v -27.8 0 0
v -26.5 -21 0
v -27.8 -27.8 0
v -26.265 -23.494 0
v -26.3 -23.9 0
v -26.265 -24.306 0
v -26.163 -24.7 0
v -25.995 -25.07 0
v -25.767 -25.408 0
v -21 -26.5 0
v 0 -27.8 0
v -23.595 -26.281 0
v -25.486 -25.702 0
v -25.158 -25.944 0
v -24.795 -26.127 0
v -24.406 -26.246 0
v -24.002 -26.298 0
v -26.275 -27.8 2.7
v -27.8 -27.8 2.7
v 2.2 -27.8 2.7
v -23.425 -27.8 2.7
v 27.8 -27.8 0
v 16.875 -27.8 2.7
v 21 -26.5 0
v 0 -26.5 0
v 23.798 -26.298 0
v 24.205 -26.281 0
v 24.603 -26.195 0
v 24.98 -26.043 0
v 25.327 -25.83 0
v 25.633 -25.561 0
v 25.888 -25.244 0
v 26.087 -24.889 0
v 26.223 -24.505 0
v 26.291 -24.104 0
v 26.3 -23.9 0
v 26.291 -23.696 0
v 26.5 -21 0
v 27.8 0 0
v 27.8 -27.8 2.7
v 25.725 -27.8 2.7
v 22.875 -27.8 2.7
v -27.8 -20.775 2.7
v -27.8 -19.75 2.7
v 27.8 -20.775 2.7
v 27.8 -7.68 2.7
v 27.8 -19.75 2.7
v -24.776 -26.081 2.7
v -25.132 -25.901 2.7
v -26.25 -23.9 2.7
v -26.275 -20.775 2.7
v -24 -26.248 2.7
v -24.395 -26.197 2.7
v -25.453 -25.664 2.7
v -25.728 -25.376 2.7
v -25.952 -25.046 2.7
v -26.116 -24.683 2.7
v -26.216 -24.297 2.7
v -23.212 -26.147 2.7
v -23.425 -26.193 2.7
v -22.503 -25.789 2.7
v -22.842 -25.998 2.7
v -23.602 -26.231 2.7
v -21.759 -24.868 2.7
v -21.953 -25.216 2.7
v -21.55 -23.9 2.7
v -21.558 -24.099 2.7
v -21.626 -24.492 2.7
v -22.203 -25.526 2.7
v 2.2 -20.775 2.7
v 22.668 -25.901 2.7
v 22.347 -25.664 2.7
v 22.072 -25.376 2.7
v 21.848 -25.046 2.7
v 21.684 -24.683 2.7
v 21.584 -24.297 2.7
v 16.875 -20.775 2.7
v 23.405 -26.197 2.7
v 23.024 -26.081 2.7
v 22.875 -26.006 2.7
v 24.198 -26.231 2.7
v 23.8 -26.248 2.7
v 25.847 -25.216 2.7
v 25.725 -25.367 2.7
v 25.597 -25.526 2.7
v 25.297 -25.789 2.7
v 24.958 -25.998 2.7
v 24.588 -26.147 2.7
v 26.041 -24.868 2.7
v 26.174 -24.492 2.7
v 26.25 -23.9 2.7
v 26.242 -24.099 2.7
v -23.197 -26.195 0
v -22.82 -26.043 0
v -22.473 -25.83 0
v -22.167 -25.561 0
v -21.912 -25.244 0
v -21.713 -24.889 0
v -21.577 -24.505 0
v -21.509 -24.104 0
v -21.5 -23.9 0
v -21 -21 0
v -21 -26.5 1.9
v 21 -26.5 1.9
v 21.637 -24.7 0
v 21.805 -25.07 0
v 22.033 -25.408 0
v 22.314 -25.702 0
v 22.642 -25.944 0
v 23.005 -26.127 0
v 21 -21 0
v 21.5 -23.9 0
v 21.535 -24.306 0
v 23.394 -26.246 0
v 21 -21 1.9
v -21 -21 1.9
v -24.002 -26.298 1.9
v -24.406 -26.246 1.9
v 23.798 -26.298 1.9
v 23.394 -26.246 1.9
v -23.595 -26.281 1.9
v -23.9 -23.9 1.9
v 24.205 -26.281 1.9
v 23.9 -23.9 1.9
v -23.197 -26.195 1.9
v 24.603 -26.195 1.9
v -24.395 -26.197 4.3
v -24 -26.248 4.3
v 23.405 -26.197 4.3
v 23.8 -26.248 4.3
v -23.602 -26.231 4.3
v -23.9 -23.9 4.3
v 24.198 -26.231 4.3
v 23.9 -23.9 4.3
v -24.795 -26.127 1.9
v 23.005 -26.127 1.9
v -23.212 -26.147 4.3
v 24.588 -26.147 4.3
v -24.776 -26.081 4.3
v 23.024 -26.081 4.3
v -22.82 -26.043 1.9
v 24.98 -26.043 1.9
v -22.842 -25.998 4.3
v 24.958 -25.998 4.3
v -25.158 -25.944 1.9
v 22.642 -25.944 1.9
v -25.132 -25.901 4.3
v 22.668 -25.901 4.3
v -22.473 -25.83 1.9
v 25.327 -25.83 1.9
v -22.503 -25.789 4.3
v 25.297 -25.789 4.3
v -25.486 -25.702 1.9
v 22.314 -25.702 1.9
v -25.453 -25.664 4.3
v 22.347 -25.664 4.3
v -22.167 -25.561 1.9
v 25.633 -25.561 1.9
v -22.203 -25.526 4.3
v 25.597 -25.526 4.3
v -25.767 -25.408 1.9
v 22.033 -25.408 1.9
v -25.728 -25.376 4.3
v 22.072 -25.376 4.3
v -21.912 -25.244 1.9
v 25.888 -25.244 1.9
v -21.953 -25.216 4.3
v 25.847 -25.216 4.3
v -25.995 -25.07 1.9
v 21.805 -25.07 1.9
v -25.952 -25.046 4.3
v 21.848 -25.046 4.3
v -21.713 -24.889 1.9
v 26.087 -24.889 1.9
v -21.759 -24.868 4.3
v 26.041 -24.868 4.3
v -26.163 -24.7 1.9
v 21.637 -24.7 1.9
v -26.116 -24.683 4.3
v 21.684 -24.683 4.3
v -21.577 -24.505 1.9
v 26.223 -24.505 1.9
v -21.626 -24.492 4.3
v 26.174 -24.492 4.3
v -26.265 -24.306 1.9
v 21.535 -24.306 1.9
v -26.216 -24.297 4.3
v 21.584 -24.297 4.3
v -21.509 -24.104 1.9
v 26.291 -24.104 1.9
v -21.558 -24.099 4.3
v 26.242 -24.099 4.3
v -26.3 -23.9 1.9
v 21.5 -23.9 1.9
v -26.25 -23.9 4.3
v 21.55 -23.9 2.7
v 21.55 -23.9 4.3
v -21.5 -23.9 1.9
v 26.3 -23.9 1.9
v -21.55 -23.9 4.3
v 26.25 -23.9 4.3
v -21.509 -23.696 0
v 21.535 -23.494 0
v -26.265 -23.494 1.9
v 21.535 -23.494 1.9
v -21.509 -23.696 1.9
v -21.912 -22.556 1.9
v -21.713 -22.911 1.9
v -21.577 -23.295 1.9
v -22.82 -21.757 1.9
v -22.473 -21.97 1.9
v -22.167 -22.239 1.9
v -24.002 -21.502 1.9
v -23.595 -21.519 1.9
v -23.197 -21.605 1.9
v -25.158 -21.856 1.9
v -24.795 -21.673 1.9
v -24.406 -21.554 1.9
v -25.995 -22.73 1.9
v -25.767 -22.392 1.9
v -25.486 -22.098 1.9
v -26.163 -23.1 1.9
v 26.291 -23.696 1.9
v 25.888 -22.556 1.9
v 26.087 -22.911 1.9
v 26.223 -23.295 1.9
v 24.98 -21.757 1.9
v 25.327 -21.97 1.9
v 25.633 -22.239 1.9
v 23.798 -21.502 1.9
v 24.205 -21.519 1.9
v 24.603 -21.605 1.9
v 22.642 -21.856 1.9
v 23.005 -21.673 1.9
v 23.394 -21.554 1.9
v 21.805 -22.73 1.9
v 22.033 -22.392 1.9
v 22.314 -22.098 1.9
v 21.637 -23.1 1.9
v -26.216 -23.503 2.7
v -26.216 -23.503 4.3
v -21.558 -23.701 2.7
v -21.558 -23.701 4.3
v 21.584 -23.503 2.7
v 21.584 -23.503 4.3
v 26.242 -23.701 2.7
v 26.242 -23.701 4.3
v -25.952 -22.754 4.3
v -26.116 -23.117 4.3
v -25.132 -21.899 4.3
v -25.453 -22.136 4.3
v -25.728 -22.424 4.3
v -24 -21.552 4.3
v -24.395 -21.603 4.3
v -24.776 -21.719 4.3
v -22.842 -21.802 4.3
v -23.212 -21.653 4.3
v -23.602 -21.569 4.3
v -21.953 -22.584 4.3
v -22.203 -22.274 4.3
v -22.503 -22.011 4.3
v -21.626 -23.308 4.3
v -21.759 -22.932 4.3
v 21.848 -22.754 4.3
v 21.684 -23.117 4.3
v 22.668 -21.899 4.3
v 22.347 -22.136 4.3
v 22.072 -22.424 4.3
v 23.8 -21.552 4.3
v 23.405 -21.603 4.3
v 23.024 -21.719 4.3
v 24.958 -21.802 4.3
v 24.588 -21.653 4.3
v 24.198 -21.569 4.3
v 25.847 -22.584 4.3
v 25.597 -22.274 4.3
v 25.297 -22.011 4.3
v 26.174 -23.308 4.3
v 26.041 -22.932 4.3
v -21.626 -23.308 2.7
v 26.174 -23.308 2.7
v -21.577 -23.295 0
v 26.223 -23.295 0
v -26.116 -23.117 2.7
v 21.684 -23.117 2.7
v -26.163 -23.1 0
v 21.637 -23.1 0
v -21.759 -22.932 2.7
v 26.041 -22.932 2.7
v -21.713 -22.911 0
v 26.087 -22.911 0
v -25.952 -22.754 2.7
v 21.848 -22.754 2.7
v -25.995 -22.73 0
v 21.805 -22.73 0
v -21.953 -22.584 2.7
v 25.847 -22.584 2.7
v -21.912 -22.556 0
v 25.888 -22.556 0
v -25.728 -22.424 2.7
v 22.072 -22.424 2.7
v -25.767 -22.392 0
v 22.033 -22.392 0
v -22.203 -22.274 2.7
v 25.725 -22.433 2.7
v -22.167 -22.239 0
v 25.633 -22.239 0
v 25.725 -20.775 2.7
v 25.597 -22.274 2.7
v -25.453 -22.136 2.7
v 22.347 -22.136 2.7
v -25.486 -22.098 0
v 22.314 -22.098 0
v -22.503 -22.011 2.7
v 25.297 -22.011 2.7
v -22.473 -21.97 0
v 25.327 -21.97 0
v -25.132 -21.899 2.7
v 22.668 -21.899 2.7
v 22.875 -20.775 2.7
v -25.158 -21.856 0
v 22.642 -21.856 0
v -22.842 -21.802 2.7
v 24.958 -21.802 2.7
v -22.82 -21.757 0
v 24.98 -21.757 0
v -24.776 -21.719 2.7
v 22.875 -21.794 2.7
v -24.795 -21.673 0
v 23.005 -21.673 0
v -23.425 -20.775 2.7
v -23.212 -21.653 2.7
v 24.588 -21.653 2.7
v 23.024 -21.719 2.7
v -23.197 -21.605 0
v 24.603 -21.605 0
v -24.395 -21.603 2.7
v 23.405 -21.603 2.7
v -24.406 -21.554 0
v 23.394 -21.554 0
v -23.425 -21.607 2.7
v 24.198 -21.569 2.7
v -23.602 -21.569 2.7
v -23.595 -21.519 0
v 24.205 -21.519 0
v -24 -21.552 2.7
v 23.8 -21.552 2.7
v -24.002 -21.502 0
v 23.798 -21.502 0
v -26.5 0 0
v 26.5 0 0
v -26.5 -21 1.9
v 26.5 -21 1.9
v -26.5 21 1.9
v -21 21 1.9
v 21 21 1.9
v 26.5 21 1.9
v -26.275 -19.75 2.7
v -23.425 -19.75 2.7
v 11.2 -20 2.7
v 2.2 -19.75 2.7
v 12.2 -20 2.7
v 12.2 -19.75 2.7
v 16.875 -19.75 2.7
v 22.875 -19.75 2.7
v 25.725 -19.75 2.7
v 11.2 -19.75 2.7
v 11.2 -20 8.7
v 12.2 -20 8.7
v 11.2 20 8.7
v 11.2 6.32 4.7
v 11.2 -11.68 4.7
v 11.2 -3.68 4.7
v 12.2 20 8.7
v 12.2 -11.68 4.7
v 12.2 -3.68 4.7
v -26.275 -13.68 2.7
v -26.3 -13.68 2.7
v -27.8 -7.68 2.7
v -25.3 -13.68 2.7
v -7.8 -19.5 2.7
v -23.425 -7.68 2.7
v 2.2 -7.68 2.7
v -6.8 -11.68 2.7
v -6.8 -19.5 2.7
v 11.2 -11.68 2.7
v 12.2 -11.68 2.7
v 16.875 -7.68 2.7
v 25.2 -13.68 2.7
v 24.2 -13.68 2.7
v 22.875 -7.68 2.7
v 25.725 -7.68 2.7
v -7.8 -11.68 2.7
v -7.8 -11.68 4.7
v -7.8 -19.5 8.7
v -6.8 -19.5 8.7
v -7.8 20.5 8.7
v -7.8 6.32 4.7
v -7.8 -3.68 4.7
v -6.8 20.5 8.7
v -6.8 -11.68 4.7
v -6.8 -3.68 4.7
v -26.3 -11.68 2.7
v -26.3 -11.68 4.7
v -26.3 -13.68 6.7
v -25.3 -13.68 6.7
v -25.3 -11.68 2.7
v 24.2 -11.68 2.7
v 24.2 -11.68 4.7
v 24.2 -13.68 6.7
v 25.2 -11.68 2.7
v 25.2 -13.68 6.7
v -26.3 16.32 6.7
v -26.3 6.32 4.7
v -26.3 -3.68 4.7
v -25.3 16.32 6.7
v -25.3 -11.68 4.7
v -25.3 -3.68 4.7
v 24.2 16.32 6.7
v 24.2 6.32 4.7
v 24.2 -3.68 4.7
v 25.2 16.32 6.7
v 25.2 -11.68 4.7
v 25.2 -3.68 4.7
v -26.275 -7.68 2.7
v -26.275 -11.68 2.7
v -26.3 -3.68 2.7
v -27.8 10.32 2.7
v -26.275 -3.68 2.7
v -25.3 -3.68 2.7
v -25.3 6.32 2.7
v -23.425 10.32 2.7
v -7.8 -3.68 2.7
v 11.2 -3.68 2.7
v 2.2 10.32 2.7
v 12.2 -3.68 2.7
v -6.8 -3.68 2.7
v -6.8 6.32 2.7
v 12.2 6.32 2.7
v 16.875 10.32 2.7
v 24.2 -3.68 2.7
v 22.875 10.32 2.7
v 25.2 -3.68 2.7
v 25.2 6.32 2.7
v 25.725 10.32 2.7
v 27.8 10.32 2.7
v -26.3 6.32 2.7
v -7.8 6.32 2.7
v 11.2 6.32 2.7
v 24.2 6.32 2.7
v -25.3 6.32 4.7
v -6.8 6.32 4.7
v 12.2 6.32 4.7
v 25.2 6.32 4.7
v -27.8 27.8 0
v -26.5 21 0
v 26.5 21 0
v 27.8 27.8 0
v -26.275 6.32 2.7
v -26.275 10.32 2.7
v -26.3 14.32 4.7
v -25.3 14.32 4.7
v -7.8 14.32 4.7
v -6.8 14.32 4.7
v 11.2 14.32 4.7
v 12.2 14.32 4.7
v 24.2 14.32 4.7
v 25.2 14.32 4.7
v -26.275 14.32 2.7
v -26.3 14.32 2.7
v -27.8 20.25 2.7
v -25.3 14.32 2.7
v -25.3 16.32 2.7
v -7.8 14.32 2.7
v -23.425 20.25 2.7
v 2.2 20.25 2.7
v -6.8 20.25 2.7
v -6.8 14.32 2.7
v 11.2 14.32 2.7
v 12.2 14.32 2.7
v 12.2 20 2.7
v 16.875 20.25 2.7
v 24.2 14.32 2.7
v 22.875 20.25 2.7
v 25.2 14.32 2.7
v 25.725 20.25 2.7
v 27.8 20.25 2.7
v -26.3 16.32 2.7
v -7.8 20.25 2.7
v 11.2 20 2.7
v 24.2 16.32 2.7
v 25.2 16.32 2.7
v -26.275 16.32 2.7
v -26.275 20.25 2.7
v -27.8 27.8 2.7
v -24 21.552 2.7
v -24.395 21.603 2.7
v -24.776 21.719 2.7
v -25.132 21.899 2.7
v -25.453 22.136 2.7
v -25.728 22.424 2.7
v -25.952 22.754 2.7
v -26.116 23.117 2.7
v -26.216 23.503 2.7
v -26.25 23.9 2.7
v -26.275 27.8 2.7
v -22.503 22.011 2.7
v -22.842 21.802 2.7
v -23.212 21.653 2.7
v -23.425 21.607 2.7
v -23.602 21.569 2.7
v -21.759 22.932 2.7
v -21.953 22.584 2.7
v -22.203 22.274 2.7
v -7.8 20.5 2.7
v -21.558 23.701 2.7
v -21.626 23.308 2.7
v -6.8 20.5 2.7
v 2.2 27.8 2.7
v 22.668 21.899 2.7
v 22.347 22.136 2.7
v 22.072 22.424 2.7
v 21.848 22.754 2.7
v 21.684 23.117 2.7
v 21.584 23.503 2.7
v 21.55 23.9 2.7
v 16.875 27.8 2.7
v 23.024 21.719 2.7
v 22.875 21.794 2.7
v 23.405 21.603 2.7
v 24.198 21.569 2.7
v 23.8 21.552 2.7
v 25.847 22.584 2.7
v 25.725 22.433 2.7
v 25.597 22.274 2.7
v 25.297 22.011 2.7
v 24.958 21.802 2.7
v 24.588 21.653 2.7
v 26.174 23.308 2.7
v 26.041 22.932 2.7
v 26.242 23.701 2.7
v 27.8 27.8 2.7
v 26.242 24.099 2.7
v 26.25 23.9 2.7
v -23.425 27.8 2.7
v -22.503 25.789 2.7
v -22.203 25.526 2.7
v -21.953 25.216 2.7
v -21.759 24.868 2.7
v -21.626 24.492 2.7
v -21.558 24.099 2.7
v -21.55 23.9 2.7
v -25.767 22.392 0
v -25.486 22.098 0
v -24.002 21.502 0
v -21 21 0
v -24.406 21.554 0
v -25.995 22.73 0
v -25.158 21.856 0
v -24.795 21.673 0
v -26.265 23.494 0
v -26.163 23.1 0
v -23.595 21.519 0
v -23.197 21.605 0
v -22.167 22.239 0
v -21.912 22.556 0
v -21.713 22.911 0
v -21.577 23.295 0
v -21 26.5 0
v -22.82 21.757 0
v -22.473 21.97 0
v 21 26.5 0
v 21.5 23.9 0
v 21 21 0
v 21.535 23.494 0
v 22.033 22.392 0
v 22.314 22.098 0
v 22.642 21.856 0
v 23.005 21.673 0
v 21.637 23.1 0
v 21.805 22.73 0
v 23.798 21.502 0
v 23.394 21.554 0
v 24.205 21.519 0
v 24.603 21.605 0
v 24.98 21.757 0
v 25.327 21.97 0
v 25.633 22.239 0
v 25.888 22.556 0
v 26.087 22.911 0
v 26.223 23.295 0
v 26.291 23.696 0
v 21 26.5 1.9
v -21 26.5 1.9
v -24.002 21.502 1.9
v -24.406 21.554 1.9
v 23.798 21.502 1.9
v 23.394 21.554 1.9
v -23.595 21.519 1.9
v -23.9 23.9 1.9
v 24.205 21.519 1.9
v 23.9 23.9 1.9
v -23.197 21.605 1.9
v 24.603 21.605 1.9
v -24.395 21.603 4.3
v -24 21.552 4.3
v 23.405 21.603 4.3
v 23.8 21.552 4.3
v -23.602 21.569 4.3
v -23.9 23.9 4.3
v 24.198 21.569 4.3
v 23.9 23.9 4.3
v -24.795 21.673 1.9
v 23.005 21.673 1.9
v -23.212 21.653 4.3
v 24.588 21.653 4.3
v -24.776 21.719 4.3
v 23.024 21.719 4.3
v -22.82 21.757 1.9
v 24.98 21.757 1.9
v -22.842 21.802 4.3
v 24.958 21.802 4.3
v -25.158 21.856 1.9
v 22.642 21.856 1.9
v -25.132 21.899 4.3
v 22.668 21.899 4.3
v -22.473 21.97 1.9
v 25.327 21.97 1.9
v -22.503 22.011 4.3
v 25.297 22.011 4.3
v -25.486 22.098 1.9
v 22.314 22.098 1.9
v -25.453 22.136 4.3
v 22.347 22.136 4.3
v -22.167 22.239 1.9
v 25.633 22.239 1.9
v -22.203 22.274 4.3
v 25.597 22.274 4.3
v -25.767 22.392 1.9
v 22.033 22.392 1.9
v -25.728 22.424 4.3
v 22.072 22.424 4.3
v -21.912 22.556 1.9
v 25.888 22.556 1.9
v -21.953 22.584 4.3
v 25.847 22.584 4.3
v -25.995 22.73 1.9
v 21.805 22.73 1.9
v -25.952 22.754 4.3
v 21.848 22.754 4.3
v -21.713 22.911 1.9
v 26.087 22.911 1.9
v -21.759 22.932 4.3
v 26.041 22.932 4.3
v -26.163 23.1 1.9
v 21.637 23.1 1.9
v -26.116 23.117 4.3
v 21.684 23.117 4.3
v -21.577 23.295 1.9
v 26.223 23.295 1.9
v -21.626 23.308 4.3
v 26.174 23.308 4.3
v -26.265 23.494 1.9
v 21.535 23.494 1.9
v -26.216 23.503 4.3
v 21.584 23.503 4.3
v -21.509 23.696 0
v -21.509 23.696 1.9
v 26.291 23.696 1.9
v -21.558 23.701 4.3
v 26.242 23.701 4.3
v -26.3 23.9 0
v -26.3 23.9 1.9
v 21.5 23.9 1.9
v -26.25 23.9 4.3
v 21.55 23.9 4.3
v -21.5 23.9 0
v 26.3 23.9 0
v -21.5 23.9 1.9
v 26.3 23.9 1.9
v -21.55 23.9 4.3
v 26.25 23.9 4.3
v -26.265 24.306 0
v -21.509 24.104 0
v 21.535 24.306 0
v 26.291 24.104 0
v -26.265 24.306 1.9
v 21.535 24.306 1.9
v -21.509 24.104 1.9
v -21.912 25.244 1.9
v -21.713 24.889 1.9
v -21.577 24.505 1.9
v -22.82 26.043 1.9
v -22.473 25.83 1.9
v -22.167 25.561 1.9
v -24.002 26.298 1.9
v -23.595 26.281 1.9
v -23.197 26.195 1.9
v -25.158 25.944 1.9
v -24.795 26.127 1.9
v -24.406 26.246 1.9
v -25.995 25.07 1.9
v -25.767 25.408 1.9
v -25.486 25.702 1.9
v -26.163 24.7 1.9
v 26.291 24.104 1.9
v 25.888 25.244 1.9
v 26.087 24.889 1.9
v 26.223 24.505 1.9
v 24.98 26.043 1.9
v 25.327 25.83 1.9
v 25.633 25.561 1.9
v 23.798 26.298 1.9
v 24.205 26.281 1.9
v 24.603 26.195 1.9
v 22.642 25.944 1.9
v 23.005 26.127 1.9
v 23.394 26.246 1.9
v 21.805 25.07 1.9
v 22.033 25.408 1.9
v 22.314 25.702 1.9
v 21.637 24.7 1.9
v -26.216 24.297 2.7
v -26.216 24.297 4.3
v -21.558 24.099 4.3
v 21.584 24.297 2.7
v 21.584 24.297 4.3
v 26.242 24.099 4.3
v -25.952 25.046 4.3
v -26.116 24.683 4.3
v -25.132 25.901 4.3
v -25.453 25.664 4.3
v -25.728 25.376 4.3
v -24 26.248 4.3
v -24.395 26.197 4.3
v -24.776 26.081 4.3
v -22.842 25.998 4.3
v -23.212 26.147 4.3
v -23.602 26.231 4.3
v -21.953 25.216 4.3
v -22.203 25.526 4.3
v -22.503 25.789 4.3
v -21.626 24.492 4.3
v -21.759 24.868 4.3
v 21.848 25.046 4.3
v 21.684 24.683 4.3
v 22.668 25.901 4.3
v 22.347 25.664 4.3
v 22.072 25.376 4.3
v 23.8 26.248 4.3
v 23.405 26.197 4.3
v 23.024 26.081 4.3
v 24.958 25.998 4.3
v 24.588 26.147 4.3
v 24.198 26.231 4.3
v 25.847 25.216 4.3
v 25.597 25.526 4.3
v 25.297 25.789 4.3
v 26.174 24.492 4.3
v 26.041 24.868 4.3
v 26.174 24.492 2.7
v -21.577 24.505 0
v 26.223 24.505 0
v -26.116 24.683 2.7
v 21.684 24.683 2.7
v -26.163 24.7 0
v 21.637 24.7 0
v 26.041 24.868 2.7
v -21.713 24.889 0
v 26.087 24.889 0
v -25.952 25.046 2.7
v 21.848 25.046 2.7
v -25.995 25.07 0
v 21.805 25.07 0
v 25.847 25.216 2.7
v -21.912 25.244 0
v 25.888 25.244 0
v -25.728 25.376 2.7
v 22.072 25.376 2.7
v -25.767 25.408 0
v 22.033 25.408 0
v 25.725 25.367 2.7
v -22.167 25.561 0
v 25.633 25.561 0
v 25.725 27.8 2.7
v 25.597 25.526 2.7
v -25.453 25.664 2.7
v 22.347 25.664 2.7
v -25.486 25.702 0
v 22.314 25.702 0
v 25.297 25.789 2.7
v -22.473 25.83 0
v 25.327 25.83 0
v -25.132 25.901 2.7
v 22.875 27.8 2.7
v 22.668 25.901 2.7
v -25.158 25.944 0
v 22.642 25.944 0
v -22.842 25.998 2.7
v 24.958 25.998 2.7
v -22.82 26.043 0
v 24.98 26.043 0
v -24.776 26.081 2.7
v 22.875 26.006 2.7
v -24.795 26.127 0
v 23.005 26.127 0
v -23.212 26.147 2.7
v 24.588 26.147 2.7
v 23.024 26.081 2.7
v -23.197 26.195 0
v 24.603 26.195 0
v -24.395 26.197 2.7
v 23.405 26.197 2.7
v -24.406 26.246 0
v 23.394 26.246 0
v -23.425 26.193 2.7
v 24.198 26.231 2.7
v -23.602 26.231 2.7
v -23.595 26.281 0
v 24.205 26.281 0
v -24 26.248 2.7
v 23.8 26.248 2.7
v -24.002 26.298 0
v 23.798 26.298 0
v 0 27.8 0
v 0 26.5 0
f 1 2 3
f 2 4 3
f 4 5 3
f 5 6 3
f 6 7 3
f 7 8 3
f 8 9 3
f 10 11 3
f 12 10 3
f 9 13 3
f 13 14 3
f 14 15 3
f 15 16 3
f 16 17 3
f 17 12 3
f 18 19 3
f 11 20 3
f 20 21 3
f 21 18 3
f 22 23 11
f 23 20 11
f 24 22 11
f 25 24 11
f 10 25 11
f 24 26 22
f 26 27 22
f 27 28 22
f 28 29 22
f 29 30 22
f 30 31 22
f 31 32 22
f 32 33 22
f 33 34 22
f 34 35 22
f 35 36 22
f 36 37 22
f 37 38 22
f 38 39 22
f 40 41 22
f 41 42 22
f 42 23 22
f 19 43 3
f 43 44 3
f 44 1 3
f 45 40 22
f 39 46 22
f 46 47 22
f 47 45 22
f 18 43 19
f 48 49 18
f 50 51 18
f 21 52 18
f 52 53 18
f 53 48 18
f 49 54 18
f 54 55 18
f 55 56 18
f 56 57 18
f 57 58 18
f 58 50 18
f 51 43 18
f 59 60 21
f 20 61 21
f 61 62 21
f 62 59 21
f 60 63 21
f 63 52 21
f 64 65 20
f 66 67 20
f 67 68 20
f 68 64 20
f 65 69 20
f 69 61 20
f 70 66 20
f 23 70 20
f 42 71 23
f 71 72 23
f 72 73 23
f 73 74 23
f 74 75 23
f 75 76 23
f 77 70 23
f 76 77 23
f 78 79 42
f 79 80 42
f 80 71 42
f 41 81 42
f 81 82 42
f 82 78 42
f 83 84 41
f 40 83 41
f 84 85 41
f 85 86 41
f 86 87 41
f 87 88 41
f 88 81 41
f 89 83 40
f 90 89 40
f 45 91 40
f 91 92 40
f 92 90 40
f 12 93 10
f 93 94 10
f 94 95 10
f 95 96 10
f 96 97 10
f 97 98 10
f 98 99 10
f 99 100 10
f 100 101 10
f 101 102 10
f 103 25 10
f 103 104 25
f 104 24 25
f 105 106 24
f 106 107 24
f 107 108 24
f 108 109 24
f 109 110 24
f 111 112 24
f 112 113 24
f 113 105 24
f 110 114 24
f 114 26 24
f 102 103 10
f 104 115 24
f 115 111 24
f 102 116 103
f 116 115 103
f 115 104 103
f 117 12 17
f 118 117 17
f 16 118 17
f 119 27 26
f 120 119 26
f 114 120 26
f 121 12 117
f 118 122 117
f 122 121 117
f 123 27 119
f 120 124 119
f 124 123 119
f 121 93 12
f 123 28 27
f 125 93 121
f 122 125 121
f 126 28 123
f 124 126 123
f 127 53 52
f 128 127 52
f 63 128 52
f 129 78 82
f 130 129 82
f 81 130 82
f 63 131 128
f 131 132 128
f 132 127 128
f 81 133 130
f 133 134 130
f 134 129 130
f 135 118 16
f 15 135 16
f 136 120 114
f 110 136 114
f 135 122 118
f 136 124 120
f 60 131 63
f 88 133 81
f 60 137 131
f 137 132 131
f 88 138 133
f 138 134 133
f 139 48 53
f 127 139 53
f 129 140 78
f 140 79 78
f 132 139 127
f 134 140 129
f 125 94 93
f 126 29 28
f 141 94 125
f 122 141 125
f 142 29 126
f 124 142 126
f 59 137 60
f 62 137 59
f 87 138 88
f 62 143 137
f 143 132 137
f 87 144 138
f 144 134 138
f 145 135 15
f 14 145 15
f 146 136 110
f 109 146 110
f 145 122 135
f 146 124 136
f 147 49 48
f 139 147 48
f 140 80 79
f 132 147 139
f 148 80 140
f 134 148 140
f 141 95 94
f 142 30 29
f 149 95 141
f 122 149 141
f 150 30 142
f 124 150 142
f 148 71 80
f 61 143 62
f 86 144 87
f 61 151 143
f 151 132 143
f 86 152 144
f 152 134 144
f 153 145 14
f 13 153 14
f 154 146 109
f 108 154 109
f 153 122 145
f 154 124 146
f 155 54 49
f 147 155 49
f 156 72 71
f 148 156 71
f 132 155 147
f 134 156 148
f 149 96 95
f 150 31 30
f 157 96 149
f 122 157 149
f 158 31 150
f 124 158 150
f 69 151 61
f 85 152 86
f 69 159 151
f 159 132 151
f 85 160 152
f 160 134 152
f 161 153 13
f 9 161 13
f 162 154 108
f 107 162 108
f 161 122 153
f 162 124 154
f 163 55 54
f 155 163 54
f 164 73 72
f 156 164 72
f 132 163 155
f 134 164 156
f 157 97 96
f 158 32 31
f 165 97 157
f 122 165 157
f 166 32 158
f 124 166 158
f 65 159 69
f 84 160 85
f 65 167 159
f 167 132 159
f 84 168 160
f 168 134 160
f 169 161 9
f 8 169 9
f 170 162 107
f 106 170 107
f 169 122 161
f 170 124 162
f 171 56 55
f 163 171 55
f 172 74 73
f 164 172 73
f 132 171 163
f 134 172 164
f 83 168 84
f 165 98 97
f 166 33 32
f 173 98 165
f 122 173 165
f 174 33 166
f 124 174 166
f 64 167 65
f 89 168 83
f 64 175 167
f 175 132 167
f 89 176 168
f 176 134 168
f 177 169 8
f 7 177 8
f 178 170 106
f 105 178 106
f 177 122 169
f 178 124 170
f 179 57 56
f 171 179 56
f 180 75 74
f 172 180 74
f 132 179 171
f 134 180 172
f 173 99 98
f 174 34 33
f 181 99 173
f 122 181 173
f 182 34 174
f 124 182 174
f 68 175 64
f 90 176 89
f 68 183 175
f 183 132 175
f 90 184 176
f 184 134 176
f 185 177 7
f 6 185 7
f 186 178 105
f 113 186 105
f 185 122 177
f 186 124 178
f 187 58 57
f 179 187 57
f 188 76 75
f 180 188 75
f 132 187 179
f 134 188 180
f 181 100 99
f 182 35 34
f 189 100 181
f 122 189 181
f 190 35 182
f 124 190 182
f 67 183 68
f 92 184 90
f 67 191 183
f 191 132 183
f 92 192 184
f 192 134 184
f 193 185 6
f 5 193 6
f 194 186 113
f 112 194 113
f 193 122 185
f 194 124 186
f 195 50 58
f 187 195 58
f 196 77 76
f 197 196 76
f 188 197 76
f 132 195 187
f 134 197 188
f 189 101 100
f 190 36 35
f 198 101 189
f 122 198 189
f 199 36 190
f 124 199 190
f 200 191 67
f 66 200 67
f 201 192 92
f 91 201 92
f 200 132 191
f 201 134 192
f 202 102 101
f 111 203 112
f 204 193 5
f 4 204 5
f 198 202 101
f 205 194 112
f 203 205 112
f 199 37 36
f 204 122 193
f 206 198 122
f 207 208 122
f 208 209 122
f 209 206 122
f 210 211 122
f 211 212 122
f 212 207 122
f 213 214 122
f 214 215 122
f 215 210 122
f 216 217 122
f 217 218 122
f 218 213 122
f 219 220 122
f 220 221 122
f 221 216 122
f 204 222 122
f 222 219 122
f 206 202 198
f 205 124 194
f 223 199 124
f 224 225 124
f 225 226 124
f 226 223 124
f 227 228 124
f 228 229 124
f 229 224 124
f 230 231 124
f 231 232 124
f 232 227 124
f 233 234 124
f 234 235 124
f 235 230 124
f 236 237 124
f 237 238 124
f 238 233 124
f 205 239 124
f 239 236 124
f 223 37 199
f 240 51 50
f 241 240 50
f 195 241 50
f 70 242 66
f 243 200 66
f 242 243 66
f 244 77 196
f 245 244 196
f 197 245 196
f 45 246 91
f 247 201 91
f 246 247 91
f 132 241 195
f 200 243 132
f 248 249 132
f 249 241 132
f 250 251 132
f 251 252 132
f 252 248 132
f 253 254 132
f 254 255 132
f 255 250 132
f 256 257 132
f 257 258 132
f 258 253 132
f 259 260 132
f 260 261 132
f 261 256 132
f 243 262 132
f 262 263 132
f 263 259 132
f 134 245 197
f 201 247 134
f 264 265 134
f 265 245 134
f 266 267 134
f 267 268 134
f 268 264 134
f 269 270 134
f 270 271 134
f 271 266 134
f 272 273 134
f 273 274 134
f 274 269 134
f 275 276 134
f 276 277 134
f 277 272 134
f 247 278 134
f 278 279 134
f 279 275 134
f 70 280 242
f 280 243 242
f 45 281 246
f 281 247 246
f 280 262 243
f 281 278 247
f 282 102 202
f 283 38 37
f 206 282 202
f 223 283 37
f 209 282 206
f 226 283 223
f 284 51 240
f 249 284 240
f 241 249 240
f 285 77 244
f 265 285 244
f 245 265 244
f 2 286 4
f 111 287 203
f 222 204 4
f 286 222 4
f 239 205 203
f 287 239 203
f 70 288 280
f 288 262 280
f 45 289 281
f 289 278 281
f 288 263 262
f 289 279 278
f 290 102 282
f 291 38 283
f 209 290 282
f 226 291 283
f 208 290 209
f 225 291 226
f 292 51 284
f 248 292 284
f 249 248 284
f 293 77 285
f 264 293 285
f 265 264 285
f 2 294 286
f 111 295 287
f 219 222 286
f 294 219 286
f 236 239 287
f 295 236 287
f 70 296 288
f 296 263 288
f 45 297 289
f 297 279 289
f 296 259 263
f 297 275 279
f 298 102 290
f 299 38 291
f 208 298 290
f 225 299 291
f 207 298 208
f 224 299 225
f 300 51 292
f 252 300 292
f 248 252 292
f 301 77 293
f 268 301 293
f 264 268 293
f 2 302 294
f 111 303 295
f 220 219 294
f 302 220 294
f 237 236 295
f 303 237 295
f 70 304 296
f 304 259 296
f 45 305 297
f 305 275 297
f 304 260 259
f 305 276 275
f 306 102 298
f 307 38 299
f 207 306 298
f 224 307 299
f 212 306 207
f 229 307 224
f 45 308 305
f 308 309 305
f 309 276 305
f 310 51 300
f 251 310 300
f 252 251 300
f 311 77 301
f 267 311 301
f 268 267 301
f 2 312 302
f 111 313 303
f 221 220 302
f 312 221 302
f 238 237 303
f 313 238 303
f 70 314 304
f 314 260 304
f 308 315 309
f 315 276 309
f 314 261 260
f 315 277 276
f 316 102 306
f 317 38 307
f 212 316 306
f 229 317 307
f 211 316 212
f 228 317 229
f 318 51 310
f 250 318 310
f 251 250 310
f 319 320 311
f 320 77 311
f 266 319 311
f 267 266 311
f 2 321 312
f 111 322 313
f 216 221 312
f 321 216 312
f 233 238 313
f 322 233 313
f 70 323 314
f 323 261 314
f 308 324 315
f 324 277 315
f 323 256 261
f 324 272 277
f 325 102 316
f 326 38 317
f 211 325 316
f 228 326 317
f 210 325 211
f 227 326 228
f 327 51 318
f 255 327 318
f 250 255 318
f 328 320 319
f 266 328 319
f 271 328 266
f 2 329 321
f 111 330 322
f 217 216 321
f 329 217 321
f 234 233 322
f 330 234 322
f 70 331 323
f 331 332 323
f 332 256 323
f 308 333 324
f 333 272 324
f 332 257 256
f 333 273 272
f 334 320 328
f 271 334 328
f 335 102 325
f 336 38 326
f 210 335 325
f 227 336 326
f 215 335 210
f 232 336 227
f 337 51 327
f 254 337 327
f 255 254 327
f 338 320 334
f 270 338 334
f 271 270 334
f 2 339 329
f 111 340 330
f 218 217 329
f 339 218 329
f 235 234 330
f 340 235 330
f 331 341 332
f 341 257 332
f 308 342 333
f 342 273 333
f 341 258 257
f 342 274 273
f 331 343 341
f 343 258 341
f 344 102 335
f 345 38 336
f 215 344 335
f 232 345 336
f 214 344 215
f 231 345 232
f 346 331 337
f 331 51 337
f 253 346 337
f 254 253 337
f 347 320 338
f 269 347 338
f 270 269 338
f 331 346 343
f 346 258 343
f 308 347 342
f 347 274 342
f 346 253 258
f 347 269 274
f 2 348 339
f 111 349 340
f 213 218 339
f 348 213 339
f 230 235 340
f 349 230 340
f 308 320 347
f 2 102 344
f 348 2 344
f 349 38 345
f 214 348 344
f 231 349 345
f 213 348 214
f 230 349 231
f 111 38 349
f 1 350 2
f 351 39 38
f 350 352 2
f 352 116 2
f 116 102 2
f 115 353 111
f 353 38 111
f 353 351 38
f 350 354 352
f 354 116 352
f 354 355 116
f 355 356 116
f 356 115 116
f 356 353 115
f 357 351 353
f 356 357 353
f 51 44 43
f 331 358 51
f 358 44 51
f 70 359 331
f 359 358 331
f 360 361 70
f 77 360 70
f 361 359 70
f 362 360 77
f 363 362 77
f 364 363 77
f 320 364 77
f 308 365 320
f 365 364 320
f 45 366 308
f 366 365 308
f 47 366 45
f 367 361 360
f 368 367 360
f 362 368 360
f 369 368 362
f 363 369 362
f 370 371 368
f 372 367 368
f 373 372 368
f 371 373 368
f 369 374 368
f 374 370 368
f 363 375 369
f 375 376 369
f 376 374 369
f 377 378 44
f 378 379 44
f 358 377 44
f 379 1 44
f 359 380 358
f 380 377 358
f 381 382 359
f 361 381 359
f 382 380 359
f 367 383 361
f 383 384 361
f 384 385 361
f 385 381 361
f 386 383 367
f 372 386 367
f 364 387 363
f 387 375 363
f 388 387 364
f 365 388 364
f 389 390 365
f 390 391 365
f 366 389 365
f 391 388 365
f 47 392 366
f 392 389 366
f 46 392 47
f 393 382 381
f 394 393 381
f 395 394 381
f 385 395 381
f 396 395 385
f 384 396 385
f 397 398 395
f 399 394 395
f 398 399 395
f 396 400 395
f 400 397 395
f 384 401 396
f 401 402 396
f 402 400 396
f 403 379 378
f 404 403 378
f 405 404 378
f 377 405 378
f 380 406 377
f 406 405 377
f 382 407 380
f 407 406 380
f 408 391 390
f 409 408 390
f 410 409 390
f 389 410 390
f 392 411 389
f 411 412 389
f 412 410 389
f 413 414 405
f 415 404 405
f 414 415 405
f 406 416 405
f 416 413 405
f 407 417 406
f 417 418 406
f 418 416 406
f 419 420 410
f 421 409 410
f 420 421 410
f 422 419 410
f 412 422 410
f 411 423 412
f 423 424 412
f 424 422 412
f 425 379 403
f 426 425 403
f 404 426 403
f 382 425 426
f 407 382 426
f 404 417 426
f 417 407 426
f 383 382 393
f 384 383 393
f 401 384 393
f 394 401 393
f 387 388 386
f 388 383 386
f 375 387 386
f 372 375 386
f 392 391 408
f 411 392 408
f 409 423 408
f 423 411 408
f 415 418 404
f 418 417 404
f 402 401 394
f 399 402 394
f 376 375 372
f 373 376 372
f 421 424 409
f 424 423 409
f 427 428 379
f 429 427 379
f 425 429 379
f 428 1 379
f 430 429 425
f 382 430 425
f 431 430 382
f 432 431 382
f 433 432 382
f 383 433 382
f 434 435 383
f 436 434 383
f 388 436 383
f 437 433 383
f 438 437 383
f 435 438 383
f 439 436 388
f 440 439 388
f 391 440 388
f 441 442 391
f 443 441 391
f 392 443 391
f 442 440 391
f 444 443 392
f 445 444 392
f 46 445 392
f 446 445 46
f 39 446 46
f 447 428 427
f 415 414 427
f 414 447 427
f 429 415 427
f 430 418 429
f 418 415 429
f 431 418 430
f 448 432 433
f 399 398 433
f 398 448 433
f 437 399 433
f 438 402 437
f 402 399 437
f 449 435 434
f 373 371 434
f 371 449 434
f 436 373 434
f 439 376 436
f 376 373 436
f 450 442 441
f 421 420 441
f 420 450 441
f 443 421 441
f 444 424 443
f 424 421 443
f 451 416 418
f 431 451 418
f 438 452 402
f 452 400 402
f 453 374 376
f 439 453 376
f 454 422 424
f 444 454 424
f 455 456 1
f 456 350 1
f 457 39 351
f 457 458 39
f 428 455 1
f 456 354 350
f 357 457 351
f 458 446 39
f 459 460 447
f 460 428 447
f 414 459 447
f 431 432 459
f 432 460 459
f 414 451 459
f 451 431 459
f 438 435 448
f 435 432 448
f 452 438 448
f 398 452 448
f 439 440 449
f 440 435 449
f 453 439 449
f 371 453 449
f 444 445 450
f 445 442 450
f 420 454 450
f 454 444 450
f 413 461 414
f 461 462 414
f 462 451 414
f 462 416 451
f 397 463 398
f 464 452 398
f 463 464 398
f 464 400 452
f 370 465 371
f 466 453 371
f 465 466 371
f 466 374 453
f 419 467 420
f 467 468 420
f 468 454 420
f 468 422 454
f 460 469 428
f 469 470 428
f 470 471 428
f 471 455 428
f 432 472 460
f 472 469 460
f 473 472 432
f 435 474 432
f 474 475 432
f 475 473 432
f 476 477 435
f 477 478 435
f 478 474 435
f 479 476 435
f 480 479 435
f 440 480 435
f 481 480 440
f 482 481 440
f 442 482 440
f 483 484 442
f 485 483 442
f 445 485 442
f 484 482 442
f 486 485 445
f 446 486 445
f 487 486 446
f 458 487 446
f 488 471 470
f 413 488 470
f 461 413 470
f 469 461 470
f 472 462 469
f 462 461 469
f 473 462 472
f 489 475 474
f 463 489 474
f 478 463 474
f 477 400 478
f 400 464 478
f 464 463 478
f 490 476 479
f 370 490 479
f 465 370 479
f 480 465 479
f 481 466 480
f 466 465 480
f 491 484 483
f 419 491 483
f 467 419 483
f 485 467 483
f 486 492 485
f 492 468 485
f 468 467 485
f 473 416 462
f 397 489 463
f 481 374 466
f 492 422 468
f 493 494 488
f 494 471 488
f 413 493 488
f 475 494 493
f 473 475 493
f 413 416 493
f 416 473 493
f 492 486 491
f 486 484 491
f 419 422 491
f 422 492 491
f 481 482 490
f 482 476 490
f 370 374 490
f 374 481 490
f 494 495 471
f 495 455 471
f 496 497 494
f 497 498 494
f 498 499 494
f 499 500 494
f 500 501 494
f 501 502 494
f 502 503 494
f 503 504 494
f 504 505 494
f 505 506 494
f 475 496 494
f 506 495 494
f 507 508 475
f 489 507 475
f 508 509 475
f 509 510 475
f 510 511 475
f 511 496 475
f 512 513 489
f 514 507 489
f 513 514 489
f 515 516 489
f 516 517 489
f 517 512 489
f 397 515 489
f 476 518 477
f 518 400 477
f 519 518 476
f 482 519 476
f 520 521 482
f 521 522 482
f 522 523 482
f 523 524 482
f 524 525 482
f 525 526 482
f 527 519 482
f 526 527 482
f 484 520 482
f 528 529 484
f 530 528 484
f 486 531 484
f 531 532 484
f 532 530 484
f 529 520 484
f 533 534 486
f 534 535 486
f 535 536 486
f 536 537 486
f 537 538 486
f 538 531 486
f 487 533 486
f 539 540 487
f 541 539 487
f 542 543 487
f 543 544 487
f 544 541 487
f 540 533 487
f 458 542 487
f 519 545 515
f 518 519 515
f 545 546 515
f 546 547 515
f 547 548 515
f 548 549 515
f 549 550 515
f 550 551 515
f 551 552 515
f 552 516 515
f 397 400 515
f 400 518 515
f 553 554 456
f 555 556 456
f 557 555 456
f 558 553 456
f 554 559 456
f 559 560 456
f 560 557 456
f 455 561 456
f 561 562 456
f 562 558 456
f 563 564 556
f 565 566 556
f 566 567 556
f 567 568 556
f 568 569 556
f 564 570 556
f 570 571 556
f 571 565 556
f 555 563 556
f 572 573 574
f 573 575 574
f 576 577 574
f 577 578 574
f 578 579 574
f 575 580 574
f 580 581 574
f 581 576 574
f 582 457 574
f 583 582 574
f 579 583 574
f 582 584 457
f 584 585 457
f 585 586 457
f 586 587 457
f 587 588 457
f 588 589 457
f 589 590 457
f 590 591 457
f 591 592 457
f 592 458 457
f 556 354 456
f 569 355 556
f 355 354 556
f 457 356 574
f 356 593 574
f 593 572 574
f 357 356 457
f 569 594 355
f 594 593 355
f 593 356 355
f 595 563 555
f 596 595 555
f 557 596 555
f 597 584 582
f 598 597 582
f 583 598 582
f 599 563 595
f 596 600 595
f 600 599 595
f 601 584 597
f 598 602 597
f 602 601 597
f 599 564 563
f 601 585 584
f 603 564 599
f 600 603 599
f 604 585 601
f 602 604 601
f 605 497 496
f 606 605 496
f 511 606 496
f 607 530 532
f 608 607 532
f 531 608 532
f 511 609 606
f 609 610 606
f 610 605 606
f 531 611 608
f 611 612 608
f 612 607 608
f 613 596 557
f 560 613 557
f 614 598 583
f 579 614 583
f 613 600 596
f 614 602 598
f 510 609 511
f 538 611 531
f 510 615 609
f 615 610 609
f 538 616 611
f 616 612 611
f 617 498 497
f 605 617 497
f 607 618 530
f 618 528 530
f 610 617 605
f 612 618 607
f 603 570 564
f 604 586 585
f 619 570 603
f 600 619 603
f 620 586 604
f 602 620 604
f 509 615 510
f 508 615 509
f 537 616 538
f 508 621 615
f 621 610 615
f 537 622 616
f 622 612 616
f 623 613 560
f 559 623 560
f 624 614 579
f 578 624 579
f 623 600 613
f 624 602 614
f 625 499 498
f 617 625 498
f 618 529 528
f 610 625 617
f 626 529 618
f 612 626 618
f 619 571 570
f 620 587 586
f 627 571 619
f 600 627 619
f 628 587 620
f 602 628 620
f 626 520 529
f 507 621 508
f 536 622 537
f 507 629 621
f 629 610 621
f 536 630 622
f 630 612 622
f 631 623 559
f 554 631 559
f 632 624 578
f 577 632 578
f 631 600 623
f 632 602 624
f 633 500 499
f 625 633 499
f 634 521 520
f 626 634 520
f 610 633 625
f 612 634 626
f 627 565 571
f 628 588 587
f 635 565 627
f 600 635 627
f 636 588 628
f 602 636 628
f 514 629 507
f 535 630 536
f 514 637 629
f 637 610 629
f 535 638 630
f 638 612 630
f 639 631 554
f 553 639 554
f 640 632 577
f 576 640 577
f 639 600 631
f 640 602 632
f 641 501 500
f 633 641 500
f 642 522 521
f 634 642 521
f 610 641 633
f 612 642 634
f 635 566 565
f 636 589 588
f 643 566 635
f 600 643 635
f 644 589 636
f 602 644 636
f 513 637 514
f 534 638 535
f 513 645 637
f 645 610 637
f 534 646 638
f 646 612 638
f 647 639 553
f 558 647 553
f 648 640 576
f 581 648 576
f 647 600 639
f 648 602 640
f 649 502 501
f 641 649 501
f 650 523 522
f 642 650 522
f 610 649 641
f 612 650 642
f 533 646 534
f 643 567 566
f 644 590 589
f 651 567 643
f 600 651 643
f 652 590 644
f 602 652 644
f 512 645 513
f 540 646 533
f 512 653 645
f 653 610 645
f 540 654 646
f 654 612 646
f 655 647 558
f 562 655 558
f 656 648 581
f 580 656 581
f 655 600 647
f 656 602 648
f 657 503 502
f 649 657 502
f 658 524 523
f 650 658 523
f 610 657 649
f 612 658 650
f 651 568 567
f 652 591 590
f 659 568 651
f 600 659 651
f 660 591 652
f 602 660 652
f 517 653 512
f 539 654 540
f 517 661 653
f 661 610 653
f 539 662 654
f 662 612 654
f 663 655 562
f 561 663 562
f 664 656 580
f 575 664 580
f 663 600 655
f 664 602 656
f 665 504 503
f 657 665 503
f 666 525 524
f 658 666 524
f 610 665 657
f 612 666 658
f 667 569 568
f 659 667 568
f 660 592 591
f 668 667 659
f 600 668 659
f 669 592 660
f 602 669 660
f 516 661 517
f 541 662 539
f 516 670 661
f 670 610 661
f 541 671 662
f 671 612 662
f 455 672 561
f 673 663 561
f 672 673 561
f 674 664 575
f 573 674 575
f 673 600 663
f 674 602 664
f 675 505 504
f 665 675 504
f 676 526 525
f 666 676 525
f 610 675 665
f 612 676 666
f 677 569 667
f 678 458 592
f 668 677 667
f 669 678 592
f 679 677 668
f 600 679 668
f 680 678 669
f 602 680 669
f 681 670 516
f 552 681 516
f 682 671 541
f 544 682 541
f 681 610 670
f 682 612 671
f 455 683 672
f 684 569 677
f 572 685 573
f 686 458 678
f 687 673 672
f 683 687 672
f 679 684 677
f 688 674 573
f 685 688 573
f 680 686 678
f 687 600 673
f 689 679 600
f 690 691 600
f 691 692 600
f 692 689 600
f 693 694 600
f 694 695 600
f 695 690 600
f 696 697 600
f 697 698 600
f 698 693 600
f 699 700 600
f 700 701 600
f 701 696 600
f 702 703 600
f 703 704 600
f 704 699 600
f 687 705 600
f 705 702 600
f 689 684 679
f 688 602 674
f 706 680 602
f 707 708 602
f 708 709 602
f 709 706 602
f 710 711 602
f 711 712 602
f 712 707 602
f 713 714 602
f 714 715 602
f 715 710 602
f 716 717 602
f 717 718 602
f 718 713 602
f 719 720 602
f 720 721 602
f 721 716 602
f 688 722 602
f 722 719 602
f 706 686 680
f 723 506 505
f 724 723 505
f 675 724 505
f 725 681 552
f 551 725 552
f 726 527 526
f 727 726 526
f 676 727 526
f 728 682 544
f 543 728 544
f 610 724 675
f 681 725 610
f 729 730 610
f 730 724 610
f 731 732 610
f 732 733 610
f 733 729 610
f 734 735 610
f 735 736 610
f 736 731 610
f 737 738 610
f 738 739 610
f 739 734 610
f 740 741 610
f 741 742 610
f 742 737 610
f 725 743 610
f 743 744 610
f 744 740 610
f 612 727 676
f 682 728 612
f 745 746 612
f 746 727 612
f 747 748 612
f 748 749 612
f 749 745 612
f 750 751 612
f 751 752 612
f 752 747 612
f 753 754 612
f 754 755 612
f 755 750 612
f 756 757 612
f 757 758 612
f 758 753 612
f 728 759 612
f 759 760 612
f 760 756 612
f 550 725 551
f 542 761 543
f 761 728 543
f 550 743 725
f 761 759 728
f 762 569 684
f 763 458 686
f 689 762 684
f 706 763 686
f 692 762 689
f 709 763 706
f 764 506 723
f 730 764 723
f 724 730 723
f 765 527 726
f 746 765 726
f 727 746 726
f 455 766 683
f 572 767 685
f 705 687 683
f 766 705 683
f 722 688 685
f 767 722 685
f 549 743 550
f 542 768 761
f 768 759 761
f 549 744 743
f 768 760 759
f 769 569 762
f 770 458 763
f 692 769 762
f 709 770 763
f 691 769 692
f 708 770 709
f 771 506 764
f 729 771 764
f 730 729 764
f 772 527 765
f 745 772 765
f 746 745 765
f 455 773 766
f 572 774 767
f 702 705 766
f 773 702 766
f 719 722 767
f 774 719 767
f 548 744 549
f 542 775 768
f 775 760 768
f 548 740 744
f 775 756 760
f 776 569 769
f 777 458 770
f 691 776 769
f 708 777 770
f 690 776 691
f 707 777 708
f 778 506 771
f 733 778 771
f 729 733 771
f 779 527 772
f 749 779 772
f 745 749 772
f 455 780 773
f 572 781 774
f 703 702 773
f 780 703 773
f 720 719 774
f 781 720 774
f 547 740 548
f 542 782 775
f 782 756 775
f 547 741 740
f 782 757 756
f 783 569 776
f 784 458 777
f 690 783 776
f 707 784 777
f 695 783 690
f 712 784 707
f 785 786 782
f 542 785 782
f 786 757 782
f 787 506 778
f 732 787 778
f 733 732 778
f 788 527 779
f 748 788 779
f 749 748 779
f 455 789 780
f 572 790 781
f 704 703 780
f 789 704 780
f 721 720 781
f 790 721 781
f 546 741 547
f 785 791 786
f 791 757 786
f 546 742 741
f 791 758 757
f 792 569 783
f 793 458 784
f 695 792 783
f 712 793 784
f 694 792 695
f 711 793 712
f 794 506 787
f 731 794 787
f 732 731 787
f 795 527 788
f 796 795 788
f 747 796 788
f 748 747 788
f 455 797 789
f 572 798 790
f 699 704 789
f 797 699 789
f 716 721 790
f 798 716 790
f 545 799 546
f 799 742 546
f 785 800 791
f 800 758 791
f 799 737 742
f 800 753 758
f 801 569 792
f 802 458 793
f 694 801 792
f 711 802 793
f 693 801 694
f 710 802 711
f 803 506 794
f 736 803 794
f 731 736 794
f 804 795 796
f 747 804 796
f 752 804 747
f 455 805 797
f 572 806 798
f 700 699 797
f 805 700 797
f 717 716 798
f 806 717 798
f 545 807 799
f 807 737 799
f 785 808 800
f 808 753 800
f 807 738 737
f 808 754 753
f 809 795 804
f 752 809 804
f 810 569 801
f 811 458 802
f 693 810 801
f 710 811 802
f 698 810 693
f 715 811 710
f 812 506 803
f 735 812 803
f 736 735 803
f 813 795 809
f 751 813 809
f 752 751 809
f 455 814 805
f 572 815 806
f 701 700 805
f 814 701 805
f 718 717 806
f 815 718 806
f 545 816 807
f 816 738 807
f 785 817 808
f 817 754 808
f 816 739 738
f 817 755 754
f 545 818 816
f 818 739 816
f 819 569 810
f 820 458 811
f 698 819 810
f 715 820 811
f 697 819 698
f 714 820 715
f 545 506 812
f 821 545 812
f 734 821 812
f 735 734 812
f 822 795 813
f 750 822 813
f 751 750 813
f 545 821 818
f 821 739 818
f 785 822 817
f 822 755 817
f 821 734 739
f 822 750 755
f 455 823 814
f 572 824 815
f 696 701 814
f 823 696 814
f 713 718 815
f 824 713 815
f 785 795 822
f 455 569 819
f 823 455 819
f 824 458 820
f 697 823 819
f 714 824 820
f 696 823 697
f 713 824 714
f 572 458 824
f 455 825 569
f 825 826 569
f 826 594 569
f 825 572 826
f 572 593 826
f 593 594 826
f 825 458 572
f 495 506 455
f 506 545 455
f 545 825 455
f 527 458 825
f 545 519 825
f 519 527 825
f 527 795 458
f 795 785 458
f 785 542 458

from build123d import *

# Parameters (mm, degrees)
SKICA1_W                 = 55.6
SKICA1_H                 = 55.6
SKICA1_R                 = 2.4
P_IDAT_VYSUNUT_M1_DEPTH  = 1.9
SKICA2_W                 = 55.6
SKICA2_H                 = 55.6
P_IDAT_VYSUNUT_M2_DEPTH  = 0.8
SKICA3_R                 = 2.35
P_IDAT_VYSUNUT_M3_DEPTH  = 1.6
SKICA12_W                = 1
SKICA12_H                = 40
P_IDAT_VYSUNUT_M5_DEPTH  = 6
SKICA13_W                = 1
SKICA13_H                = 30
P_IDAT_VYSUNUT_M6_DEPTH  = 4
SKICA14_W                = 2
SKICA14_H                = 8
ODEBRAT_VYSUNUT_M6_DEPTH = 54
SKICA17_W                = 5.5
SKICA17_H                = 42
SKICA17_W_2              = 42
SKICA17_H_2              = 5.5
ODEBRAT_VYSUNUT_M7_DEPTH = 1.9


with BuildPart() as part:
    # Skica1 → Přidat vysunutím1 (new body)
    with BuildSketch(Plane.XY):
        Rectangle(SKICA1_W, SKICA1_H)
        with Locations((-23.9, 23.9)):
            Circle(SKICA1_R, mode=Mode.SUBTRACT)
        with Locations((23.9, 23.9)):
            Circle(SKICA1_R, mode=Mode.SUBTRACT)
        with Locations((-23.9, -23.9)):
            Circle(SKICA1_R, mode=Mode.SUBTRACT)
        with Locations((23.9, -23.9)):
            Circle(SKICA1_R, mode=Mode.SUBTRACT)
    extrude(amount=P_IDAT_VYSUNUT_M1_DEPTH)

    # Skica2 → Přidat vysunutím2 (add)
    with BuildSketch(Plane.XY.offset(1.9)):
        Rectangle(SKICA2_W, SKICA2_H)
    extrude(amount=P_IDAT_VYSUNUT_M2_DEPTH)

    # Skica3 → Přidat vysunutím3 (add)
    with BuildSketch(Plane.XY.offset(2.7)):
        with Locations((-23.9, 23.9)):
            Circle(SKICA3_R)
        with Locations((23.9, 23.9)):
            Circle(SKICA3_R)
        with Locations((-23.9, -23.9)):
            Circle(SKICA3_R)
        with Locations((23.9, -23.9)):
            Circle(SKICA3_R)
    extrude(amount=P_IDAT_VYSUNUT_M3_DEPTH)

    # Skica12 → Přidat vysunutím5 (add)
    with BuildSketch(Plane.XY.offset(2.7)):
        with Locations((-7.3, 0.5)):
            Rectangle(SKICA12_W, SKICA12_H)
        with Locations((11.7, 0)):
            Rectangle(SKICA12_W, SKICA12_H)
    extrude(amount=P_IDAT_VYSUNUT_M5_DEPTH)

    # Skica13 → Přidat vysunutím6 (add)
    with BuildSketch(Plane.XY.offset(2.7)):
        with Locations((-25.8, 1.319838769)):
            Rectangle(SKICA13_W, SKICA13_H)
        with Locations((24.7, 1.319838769)):
            Rectangle(SKICA13_W, SKICA13_H)
    extrude(amount=P_IDAT_VYSUNUT_M6_DEPTH)

    # Skica14 → Odebrat vysunutím6 (cut)
    with BuildSketch(Plane.ZY.offset(26.3)):
        with Locations((3.7, 10.319838769)):
            Rectangle(SKICA14_W, SKICA14_H)
        with Locations((3.7, -7.680161231)):
            Rectangle(SKICA14_W, SKICA14_H)
    extrude(amount=-ODEBRAT_VYSUNUT_M6_DEPTH, mode=Mode.SUBTRACT)

    # Skica17 → Odebrat vysunutím7 (cut)
    with BuildSketch(Plane(origin=(0, 0, 0), x_dir=(-1, 0, 0), z_dir=(0, 0, -1))):
        with Locations((-23.75, 0)):
            Rectangle(SKICA17_W, SKICA17_H)
        with Locations((0, 23.75)):
            Rectangle(SKICA17_W_2, SKICA17_H_2)
        Rectangle(SKICA17_W_2, SKICA17_H)
        with Locations((23.75, 0)):
            Rectangle(SKICA17_W, SKICA17_H)
        with Locations((0, -23.75)):
            Rectangle(SKICA17_W_2, SKICA17_H_2)
    extrude(amount=-ODEBRAT_VYSUNUT_M7_DEPTH, mode=Mode.SUBTRACT)


solid = part.part
